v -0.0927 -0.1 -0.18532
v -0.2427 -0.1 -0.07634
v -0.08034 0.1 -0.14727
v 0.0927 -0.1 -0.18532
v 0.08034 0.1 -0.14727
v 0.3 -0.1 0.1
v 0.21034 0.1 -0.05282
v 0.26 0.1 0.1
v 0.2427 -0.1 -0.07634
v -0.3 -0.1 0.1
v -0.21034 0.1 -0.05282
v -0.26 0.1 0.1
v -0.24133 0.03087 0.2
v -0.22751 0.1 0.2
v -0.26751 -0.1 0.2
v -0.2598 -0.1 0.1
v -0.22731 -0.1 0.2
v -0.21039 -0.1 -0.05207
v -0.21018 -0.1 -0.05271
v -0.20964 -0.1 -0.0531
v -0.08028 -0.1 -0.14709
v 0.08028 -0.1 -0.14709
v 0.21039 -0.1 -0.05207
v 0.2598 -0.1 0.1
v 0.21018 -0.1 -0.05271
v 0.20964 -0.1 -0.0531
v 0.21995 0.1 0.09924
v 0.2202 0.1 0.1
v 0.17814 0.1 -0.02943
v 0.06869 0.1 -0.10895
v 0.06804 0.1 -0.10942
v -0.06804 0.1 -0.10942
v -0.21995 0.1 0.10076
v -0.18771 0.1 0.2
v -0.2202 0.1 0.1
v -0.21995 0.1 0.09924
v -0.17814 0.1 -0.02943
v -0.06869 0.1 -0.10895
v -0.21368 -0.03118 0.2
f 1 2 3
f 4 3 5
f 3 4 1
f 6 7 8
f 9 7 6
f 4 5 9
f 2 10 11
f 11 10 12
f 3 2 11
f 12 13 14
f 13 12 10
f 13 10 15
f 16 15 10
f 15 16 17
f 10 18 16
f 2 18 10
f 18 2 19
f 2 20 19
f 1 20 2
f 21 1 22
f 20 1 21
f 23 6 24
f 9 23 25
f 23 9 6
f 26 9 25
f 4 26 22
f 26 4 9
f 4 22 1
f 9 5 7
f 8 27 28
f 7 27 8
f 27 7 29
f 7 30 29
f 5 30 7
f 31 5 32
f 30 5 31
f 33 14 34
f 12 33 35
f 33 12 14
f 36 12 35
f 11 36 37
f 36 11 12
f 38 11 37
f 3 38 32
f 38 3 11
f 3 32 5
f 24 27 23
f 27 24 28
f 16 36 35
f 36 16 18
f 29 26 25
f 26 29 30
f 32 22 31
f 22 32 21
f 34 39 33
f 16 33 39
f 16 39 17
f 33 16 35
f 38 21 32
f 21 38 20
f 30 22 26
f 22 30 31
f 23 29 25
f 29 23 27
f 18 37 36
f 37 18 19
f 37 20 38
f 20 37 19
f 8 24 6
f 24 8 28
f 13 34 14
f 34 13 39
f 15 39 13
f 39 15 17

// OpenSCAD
$fn=20;
tol=0.001;
num_of_legs=4;

// Main geometry
rotate([-90, 0, 0]) translate([0, -0.1, -0.1]) {
    intersection() {
        engine_nozzle();
        union() {
            translate([0, 0, -0.8]) cube(1.0);
            translate([-0.9, -0.1, -0.8]) cube(1.0);
        }
    }
}

module engine_nozzle() {
    $fn = 10;
    bottom = 0.3;
    middle = 0.26;
    top = 0.15;
    t = 0.04;
    h1 = 0.3;
    h2 = 0.2;
    
    translate([0, 0, h2]) difference() {
        cylinder(r1=middle, r2=top, h=h1);
        translate([0, 0, -tol]) cylinder(r1=middle-t, r2=top-t, h=h1+2*tol);
    }
    
    difference() {
        cylinder(r1=bottom, r2=middle, h=h2);
        translate([0, 0, -tol]) cylinder(r1=bottom-t, r2=middle-t, h=h2+2*tol);
    }
}
